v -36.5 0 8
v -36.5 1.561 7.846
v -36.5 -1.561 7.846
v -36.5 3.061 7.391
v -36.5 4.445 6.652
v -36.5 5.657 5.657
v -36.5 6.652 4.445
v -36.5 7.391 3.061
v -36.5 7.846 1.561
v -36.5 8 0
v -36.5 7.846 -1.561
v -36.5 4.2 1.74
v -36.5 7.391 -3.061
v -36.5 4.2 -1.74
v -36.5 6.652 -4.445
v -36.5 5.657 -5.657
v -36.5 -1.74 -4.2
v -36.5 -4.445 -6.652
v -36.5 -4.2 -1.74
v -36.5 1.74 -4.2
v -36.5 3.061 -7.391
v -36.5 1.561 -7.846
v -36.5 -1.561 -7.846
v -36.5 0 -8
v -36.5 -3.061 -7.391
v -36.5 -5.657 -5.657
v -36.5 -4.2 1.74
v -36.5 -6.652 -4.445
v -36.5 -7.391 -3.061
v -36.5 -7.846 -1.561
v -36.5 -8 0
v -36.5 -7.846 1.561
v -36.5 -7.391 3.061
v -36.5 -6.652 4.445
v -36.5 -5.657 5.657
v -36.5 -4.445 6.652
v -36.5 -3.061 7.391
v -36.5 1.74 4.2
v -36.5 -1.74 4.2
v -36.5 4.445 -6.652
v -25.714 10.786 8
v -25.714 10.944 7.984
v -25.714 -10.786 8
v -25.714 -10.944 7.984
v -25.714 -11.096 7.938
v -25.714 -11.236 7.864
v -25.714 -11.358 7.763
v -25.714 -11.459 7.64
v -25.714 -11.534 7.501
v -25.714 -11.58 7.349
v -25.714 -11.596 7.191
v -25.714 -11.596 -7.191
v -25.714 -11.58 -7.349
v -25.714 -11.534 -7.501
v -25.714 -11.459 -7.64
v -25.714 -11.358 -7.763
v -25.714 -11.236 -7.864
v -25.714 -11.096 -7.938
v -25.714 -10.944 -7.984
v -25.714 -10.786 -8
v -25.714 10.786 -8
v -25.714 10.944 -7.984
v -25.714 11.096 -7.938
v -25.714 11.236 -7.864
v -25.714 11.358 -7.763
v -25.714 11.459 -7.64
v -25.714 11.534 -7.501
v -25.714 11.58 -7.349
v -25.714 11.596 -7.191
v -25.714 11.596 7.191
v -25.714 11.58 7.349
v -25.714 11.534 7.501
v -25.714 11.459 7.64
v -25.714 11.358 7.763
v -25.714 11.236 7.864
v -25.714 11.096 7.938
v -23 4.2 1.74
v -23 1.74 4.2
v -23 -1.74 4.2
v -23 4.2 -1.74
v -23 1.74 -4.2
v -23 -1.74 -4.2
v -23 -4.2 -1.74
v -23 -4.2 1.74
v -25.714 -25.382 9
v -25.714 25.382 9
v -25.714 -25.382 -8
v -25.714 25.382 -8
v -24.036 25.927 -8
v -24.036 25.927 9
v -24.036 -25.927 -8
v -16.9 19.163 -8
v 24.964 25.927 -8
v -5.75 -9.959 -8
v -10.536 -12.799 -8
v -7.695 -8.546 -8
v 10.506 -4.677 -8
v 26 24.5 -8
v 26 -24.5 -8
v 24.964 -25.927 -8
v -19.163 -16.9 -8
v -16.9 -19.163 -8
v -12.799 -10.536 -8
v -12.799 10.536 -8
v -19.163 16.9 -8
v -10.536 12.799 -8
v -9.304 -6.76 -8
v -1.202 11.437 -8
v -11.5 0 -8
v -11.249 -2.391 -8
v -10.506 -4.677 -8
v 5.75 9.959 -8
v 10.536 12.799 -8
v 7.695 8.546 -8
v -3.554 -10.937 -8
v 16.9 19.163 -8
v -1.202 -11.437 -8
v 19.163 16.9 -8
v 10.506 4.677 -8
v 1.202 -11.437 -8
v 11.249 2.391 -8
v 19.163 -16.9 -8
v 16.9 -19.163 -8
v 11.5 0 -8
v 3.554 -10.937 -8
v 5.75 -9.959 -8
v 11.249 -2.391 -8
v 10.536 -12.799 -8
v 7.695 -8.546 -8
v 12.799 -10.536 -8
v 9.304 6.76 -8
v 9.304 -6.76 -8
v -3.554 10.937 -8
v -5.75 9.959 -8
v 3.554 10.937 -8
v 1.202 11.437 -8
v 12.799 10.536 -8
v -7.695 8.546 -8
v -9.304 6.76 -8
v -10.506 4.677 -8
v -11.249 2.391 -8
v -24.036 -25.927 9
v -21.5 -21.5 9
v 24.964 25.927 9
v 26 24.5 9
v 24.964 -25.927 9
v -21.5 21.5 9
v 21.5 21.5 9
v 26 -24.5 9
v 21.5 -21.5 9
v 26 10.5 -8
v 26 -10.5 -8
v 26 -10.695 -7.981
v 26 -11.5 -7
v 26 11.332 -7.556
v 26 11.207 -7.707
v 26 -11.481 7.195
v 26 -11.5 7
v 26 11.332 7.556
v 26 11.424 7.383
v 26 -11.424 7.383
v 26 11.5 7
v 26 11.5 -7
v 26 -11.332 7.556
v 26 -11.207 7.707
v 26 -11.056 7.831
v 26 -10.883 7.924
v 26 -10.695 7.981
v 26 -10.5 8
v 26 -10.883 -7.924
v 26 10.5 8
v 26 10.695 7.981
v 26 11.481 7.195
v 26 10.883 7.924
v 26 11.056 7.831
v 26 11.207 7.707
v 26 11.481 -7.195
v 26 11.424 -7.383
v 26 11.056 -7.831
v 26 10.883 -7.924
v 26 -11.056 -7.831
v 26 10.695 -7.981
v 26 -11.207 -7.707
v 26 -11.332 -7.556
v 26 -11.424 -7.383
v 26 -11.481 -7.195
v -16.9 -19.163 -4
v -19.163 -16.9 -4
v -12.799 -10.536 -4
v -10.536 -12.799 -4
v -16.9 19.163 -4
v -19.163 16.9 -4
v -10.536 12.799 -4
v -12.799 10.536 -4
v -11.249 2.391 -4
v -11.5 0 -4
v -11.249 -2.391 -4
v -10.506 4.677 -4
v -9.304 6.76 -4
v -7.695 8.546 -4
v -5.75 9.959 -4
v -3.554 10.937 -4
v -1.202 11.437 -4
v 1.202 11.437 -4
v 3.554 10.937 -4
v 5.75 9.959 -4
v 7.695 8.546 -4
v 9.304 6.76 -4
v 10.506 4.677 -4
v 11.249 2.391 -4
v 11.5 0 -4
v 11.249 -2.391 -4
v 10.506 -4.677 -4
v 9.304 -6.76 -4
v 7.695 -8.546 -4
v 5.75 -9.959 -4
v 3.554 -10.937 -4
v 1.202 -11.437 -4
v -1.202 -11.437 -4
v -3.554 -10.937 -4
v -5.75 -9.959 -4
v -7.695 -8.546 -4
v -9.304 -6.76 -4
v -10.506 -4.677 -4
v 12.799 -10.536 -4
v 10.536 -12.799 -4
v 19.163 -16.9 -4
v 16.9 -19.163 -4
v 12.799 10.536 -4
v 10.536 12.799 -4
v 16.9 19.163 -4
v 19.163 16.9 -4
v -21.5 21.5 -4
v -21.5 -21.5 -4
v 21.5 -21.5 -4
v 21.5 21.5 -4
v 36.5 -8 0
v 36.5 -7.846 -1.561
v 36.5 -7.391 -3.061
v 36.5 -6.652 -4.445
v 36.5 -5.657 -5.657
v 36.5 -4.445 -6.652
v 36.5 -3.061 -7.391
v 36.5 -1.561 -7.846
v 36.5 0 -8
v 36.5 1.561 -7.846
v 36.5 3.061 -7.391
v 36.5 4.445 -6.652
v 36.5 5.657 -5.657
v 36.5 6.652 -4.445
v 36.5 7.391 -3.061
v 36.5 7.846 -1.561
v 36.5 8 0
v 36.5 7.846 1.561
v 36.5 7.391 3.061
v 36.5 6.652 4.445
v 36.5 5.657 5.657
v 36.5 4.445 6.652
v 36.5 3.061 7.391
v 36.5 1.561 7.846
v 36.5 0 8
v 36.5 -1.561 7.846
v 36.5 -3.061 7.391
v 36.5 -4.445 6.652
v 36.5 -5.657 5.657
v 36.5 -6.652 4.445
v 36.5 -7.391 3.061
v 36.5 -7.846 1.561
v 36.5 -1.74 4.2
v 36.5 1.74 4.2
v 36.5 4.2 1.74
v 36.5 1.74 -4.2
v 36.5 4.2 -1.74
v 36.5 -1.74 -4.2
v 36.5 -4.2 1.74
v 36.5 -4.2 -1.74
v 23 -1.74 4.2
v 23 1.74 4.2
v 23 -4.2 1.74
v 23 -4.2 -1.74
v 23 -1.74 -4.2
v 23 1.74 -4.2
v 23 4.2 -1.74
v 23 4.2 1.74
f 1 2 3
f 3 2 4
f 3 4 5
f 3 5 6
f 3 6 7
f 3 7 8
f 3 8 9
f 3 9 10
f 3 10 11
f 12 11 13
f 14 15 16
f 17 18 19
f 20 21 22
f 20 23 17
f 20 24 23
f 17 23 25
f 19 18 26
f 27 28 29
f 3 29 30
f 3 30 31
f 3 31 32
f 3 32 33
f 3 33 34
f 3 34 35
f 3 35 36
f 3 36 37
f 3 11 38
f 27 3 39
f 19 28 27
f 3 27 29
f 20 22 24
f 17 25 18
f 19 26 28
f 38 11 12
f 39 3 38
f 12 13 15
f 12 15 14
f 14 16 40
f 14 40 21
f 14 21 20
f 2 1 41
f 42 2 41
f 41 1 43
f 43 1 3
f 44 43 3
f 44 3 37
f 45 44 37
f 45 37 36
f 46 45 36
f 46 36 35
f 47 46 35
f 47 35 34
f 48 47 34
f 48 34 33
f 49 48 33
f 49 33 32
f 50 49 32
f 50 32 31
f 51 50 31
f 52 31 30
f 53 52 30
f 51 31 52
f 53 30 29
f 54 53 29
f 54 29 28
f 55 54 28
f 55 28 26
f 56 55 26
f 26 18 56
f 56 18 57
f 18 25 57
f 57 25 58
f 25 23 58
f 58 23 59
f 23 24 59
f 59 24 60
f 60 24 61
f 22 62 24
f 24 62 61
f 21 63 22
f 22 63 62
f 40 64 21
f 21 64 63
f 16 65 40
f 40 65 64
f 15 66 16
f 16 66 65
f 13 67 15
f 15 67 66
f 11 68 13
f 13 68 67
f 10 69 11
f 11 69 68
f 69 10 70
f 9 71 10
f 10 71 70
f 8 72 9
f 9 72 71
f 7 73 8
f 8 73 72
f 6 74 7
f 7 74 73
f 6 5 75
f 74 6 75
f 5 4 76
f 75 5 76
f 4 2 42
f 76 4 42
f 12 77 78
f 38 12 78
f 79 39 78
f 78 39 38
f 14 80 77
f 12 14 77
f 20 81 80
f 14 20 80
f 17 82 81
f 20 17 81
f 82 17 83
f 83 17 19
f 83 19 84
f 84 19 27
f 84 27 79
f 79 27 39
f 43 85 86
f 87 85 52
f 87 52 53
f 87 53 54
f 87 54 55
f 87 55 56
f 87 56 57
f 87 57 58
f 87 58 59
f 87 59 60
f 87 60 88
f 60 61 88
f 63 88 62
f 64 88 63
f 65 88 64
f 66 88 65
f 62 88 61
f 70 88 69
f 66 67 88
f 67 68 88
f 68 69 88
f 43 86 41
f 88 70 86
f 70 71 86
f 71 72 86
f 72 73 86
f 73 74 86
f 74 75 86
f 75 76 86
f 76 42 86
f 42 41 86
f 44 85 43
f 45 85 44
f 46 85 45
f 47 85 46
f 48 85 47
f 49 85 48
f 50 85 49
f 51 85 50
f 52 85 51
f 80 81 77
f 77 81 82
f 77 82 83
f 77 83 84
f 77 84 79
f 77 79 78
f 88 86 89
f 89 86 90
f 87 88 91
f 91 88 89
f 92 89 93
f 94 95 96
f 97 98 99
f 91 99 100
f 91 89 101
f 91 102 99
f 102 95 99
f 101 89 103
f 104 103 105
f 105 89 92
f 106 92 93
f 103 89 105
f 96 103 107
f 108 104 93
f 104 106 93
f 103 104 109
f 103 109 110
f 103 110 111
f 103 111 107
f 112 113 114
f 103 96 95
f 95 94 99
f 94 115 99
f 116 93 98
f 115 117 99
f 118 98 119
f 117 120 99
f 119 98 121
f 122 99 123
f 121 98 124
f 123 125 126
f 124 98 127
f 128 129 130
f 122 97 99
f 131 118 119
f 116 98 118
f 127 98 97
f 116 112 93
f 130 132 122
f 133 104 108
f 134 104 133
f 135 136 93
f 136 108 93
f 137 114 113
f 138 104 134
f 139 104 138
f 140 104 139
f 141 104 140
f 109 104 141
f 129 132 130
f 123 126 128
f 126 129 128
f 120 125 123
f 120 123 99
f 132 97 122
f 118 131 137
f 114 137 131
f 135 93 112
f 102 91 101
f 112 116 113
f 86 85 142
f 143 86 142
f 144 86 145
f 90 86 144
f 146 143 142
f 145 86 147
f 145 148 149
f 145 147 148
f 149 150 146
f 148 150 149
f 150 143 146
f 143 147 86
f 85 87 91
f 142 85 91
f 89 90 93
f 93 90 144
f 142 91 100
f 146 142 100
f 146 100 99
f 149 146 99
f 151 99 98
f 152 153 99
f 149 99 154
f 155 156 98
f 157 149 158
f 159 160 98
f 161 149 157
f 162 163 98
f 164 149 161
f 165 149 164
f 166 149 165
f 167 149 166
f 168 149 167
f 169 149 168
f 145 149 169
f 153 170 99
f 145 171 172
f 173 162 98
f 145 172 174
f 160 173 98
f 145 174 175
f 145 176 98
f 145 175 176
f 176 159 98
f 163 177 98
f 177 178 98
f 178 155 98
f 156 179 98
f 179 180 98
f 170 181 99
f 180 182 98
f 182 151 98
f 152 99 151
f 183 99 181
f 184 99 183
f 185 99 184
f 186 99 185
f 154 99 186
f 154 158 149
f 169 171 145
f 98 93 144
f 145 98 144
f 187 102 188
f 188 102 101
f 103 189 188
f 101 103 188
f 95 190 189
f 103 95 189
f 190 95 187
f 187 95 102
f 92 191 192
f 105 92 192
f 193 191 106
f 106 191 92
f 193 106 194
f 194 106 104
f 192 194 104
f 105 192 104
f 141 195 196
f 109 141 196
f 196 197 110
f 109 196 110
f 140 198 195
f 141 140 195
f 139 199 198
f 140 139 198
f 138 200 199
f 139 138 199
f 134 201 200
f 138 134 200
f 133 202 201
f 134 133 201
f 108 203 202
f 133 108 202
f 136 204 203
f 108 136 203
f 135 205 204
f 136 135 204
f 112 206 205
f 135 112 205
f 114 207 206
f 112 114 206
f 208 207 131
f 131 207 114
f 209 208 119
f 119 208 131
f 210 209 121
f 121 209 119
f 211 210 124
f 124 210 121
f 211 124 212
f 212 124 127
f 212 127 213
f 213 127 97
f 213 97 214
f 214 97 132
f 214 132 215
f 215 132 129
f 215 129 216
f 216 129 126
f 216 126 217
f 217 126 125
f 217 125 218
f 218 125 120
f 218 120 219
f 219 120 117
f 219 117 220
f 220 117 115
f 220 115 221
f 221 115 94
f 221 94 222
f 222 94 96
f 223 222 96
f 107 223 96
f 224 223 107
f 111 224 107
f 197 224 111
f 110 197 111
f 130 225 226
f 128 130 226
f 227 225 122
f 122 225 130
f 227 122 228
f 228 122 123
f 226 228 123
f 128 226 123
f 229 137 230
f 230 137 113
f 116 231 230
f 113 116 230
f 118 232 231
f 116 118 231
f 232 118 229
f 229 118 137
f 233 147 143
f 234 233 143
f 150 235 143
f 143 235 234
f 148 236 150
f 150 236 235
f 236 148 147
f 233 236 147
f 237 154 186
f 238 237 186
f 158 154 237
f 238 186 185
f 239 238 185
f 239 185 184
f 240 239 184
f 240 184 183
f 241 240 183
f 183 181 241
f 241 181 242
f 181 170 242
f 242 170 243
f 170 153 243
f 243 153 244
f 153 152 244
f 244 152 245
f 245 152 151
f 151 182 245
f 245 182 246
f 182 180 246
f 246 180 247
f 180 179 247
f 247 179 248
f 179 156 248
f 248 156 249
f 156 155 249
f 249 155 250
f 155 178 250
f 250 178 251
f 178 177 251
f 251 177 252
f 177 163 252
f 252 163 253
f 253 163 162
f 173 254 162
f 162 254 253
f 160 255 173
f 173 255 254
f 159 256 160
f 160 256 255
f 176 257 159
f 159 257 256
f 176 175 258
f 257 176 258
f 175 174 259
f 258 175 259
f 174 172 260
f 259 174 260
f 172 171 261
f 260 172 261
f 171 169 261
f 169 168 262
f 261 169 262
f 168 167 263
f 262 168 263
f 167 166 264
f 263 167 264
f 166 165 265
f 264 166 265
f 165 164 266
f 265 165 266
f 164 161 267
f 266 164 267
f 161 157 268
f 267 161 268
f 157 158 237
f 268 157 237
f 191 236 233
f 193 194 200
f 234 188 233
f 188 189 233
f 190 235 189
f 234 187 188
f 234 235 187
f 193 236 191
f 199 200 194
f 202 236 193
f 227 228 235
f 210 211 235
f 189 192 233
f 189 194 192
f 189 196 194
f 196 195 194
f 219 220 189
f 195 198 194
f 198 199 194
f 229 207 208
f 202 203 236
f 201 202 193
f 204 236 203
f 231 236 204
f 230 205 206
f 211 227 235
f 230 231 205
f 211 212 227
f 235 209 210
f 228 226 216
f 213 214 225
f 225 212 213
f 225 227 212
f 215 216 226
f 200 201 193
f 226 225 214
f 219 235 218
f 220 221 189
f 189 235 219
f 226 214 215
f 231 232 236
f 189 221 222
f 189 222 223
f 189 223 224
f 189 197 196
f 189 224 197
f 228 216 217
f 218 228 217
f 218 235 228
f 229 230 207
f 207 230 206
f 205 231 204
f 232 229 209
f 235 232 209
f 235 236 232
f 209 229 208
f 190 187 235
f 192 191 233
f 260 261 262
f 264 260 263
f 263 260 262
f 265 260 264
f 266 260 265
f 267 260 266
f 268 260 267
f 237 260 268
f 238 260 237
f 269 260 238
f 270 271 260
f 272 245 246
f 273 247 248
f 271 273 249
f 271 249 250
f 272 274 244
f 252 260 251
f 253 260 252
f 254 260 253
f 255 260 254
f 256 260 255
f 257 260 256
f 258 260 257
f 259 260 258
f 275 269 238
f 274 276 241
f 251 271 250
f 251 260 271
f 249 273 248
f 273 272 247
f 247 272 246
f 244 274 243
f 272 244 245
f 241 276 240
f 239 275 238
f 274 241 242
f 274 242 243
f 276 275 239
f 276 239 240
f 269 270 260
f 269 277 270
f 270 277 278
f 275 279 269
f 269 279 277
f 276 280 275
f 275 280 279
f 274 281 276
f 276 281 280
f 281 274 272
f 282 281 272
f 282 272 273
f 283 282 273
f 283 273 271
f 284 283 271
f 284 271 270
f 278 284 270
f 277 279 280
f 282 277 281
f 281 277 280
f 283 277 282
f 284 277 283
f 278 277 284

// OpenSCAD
well_size = 43;
well_depth = 12;
pivot_width = 12 ;

wall_width=3;
floor_depth=4;

block_size = well_size + wall_width*2;
block_height = well_depth + floor_depth ;


smooth_bar_diameter = 8.4;
threaded_rod_diameter = 8.6;
dRod = smooth_bar_diameter ;

end_size = 7.5;
clamp_size = 10;
wedge_width = 0;

module pivotmotormount(){
difference(){
  union() {
	// Main housing
	translate(v=[-block_size/2,-block_size/2,-block_height/2])
		minkowski() {
			cube(size = [ block_size,block_size,block_height]);
			cylinder(r=wall_width/2);
		}

	// Pivot axis
	hull() {
		translate(v=[-block_size/2-pivot_width,0,0]) rotate(a=[0,90,0]) rotate([0, 0, 22.5]) cylinder(h = block_size+pivot_width*2 , r=block_height/2, $fn=32);
		translate(v=[-block_size/2,-pivot_width,-block_height/2])    cube(size = [ block_size,pivot_width*2,block_height]);
	}
  }
	// motor well
	translate(v=[-well_size/2,-well_size/2,-(block_height-well_depth)]) cube(size = [well_size,well_size,well_depth+1]);

	// Nema 17
	rotate ([0,0,  45]) translate([21,0,0]) cube(size = [9,3.2,block_height+4], center = true);
	rotate ([0,0, -45]) translate([21,0,0]) cube(size = [9,3.2,block_height+4], center = true);
	rotate ([0,0, 135]) translate([21,0,0]) cube(size = [9,3.2,block_height+4], center = true);
	rotate ([0,0,-135]) translate([21,0,0]) cube(size = [9,3.2,block_height+4], center = true);
	translate(v=[0,0,-block_height/2-1]) cylinder(r=23/2,h=block_height+4);

	// Pivot rod
	translate(v=[-block_size/2-pivot_width-1,0,0]) rotate(a=[0,90,0]) rotate([0, 0, 22.5]) cylinder(h = pivot_width+1+wall_width/2 , r=dRod/2 / cos(22.5), $fn=8);
	translate(v=[ block_size/2-wall_width/2 ,0,0]) rotate(a=[0,90,0]) rotate([0, 0, 22.5]) cylinder(h = pivot_width+1+wall_width/2 , r=dRod/2 / cos(22.5), $fn=8);
}
}

pivotmotormount();
